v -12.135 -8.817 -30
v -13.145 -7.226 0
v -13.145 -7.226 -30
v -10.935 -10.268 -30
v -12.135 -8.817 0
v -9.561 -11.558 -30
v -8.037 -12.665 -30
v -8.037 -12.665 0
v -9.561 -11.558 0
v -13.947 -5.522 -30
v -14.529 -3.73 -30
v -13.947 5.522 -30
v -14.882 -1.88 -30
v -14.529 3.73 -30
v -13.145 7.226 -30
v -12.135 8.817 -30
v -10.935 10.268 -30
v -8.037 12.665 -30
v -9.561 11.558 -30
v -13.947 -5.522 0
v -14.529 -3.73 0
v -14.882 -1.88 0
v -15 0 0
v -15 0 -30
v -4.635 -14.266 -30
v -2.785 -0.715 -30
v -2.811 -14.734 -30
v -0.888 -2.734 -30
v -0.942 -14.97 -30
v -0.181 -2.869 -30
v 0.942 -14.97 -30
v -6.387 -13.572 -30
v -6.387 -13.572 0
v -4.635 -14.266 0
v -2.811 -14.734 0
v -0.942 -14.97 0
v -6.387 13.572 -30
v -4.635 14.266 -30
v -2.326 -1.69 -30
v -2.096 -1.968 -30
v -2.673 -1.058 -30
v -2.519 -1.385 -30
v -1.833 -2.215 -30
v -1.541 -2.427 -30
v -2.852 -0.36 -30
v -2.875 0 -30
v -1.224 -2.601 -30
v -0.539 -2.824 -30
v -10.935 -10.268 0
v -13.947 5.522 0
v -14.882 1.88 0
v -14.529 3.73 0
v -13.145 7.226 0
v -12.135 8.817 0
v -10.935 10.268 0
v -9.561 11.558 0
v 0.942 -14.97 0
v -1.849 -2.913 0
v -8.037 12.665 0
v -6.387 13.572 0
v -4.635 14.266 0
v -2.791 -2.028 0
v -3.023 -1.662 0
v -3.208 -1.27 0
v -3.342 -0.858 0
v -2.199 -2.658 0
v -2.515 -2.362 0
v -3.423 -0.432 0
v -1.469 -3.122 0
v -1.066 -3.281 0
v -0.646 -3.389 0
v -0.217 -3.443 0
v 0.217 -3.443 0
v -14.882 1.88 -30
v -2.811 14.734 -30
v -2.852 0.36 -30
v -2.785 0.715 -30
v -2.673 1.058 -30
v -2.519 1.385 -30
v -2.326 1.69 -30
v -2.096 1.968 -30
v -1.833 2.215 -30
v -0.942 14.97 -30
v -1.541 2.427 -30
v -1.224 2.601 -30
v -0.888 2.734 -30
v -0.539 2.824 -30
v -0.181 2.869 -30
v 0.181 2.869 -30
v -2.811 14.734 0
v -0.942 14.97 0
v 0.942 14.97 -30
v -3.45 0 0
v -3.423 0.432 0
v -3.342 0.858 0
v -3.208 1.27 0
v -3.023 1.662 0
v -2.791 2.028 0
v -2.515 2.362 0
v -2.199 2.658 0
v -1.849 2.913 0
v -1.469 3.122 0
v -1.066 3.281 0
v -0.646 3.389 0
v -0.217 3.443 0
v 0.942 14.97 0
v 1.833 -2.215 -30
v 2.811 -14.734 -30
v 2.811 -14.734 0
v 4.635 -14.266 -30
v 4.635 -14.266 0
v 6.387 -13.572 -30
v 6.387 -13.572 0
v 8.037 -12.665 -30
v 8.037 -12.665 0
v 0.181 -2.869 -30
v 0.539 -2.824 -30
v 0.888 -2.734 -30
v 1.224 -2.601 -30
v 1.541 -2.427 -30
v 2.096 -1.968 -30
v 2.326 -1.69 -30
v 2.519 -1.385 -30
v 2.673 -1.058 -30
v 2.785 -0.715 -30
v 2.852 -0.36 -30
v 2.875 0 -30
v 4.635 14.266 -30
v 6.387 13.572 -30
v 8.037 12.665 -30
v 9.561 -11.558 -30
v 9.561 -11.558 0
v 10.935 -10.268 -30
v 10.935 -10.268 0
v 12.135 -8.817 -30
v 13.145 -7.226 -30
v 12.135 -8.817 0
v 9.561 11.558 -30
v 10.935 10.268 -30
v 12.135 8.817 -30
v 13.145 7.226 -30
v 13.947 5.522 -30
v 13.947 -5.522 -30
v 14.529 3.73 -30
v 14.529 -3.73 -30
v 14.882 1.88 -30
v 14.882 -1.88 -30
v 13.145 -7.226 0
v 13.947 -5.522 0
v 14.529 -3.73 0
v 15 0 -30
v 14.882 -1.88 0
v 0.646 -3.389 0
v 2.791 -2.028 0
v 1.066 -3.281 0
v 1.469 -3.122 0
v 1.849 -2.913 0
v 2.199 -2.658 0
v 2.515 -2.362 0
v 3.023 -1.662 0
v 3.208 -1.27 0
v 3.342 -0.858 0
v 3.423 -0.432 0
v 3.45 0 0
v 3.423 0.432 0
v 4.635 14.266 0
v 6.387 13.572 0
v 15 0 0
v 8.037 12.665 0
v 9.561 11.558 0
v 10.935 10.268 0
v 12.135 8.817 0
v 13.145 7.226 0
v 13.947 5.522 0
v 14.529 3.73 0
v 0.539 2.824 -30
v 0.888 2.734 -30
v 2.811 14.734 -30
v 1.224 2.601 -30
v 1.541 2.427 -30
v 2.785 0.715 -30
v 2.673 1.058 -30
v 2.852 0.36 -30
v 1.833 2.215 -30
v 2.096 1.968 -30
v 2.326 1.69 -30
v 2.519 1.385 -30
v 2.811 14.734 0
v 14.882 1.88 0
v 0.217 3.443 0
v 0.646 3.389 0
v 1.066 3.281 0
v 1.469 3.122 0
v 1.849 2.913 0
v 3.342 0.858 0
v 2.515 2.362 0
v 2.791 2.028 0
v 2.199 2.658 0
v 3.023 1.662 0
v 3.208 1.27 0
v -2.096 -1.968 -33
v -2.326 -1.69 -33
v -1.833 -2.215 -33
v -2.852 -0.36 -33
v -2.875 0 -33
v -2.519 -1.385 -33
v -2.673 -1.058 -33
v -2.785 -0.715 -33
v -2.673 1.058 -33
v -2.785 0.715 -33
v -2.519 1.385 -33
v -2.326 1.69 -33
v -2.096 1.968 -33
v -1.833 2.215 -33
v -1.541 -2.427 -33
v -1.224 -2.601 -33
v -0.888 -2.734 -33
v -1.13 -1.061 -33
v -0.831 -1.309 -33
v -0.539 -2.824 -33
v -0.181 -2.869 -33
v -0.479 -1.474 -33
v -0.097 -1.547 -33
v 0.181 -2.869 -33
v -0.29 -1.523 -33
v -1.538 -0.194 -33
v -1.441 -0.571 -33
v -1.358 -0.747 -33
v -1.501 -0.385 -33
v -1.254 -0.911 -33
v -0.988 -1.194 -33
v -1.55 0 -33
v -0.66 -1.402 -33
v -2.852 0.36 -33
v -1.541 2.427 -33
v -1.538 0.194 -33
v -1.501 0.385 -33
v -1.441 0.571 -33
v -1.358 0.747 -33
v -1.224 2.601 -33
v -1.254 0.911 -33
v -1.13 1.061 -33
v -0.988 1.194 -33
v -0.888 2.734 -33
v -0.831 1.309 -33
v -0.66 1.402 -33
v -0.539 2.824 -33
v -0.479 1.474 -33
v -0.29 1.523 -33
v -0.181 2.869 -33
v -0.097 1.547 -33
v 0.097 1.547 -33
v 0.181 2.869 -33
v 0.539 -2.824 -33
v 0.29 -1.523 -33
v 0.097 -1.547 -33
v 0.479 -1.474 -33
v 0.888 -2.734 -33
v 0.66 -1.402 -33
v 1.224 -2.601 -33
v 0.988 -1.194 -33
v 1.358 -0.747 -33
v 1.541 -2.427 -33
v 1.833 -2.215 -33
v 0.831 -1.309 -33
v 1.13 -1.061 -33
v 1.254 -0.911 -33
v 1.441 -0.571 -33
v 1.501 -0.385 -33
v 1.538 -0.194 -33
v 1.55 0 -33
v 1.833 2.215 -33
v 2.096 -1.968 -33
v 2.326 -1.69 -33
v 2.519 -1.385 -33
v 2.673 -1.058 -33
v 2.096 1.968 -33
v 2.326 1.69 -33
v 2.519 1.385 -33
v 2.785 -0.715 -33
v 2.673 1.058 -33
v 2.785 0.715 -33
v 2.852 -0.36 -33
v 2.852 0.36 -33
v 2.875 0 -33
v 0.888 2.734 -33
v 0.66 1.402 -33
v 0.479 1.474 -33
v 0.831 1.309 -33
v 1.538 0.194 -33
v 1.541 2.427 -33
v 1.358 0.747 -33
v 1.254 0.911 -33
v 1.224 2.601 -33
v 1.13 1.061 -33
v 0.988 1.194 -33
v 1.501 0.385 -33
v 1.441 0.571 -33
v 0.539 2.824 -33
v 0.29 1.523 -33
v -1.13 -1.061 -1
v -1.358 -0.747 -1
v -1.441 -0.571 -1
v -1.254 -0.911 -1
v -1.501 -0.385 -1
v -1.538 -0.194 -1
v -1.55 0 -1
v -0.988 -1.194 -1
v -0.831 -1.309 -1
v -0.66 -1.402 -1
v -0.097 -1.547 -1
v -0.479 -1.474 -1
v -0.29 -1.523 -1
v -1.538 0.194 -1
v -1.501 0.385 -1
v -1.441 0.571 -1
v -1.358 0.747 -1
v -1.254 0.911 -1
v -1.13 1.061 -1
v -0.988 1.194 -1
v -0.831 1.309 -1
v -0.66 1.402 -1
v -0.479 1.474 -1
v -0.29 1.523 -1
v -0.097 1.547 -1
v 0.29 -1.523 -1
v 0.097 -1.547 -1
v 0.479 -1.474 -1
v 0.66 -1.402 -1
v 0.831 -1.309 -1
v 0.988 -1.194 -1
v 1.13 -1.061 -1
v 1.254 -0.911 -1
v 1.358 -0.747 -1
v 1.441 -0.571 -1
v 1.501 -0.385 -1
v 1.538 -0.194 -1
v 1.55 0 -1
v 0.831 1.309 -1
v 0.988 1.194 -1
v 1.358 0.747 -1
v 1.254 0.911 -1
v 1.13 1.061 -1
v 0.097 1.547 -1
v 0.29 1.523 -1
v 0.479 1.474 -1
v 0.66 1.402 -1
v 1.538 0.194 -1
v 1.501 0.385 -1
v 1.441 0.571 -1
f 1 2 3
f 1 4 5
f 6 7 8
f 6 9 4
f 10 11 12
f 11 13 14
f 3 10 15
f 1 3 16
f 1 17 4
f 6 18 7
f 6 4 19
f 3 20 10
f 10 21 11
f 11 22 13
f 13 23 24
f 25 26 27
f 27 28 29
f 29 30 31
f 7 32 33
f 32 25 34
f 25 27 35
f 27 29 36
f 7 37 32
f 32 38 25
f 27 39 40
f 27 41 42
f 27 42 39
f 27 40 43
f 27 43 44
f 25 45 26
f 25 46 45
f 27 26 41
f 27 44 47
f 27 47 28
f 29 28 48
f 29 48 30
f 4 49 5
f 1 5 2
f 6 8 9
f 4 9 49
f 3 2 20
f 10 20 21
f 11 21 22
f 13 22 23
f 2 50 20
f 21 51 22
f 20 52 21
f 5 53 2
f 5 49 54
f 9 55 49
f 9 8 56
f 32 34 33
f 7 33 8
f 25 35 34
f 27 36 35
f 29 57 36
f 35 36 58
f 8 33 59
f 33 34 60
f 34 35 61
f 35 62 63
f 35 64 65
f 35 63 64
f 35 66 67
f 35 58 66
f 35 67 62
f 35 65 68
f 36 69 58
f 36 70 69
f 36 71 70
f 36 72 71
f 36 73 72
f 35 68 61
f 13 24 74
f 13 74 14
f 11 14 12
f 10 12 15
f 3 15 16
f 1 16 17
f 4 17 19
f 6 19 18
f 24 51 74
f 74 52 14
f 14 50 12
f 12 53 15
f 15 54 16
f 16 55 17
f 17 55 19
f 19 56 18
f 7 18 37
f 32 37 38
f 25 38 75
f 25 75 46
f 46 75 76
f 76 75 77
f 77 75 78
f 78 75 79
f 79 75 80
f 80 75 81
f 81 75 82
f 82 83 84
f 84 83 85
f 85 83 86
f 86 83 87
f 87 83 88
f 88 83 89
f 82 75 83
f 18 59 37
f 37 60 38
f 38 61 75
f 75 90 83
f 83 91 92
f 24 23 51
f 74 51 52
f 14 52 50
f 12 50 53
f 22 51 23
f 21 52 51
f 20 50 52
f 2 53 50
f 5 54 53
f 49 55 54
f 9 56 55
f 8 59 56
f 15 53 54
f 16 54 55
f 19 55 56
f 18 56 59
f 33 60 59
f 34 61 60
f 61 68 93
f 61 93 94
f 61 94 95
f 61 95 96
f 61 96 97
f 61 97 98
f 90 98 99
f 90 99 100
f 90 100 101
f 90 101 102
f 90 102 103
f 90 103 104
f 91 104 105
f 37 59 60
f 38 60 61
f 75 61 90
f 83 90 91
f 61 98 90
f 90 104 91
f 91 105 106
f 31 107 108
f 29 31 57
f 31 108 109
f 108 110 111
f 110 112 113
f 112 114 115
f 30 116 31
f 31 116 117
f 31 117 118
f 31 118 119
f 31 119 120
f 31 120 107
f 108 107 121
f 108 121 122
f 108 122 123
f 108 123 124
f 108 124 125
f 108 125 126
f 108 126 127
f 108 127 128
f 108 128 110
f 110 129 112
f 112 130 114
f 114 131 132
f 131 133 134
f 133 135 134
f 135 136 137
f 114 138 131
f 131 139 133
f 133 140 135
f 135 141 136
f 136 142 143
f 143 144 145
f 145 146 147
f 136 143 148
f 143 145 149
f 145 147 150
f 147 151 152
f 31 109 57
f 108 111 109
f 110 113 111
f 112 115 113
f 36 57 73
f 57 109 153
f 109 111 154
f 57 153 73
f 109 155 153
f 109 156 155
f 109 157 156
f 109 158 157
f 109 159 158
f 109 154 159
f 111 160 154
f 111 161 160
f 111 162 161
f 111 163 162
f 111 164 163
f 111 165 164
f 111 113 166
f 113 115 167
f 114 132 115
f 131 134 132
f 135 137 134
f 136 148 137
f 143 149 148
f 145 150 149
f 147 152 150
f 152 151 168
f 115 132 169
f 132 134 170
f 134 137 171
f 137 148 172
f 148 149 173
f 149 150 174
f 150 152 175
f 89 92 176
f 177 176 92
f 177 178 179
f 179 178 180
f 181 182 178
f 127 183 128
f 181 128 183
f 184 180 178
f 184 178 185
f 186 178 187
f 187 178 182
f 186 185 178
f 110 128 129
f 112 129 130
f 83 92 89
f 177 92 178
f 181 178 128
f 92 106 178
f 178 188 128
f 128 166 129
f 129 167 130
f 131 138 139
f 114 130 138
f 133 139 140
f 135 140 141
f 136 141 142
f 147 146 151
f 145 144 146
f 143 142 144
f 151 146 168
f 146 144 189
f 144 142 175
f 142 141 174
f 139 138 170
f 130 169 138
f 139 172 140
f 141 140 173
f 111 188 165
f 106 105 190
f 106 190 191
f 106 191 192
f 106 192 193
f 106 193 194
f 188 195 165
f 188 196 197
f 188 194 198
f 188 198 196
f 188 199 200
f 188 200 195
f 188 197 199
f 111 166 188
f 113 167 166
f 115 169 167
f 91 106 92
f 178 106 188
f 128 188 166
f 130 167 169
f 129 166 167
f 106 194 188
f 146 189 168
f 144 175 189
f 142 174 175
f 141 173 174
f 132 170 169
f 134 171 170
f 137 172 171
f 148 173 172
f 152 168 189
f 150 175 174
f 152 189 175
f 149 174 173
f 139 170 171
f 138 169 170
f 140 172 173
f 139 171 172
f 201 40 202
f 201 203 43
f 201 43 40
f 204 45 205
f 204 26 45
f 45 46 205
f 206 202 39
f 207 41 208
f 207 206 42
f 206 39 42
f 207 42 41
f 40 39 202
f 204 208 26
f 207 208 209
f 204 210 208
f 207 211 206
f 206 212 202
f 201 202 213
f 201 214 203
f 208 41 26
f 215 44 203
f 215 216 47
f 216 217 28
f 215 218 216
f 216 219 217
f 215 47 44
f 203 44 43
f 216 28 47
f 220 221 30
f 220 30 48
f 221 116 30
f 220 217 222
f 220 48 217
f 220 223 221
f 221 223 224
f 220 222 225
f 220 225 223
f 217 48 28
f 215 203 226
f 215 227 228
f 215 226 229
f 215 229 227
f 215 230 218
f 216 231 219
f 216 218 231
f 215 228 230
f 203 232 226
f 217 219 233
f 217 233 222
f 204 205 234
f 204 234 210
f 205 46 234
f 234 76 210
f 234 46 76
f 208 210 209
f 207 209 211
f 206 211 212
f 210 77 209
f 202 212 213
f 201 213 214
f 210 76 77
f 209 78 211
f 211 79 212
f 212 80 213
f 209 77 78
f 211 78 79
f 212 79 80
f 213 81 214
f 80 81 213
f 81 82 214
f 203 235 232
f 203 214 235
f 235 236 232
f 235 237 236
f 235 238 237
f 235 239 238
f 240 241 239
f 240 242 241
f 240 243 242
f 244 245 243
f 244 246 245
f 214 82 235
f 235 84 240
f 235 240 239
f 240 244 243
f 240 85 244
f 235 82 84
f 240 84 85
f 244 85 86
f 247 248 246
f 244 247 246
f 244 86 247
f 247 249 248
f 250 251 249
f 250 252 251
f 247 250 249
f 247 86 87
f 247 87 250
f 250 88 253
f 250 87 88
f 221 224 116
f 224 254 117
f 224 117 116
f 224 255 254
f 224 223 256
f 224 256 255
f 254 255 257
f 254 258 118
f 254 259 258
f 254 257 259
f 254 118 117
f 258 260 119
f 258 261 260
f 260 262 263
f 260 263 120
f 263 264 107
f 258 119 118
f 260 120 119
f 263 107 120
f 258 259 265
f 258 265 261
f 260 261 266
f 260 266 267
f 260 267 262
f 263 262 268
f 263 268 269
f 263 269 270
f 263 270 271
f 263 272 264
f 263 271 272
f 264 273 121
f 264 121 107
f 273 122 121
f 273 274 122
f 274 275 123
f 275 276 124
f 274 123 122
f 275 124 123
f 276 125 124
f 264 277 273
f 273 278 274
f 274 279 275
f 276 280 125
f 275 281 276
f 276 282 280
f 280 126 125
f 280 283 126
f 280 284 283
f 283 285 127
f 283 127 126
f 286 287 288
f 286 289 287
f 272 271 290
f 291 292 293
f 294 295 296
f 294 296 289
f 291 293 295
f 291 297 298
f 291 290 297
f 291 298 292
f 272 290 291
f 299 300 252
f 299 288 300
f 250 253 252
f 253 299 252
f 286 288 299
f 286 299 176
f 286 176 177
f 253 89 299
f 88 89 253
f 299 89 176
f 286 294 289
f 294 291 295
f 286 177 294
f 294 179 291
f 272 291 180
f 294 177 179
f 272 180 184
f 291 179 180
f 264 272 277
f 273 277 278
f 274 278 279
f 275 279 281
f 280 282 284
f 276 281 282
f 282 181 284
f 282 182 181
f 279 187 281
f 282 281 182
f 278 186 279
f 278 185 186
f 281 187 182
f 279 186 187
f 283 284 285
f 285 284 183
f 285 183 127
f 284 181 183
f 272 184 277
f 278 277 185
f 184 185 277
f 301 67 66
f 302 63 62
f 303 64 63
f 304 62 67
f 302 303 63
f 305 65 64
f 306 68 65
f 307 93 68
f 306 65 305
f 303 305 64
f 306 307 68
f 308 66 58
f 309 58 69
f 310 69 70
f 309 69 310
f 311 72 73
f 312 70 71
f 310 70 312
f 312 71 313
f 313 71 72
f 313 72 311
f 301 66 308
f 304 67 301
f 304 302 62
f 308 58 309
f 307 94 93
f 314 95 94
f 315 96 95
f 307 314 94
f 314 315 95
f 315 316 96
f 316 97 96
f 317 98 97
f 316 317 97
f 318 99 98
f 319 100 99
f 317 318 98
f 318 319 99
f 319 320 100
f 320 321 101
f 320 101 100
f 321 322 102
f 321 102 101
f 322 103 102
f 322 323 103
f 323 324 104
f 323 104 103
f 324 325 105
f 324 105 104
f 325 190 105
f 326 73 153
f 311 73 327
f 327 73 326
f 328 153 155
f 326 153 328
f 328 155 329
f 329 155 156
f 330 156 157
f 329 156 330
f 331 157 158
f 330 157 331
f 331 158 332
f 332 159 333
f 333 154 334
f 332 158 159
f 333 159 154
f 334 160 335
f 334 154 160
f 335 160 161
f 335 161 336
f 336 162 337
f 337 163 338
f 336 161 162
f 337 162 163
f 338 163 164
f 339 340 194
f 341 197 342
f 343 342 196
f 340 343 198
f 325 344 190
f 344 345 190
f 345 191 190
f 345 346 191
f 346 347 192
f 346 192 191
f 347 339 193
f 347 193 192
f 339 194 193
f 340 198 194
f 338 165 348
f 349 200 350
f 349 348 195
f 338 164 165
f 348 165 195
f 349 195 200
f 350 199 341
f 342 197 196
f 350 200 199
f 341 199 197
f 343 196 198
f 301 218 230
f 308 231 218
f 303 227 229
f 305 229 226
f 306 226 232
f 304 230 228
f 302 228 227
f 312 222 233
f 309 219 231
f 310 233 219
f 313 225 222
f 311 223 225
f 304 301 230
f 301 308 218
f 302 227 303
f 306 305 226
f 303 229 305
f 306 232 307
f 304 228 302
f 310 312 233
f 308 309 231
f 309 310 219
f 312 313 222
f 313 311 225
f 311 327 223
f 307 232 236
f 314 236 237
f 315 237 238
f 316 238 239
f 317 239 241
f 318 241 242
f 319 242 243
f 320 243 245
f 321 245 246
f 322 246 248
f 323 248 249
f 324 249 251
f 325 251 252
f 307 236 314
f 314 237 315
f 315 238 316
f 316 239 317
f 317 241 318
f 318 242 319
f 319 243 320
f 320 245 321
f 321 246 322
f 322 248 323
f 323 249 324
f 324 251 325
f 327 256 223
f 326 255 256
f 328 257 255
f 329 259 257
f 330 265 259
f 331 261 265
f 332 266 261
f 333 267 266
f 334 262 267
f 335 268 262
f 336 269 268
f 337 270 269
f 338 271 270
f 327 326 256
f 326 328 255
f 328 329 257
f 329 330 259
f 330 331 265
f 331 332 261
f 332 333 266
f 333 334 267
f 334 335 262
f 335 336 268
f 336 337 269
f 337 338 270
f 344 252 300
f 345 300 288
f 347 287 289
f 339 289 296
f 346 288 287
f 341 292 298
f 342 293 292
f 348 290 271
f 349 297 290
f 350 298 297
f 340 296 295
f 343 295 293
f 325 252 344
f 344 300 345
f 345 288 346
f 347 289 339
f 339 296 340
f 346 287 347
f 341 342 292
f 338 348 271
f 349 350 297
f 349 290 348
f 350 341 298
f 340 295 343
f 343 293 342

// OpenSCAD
$fn = 50;

difference() {
	union() {
		translate(v = [0, 0, -30.0]) {
			cylinder(h = 30, r = 15.0);
		}
		#translate(v = [0, 0, -33.0]) {
			cylinder(h = 33, r = 2.875);
		}
	}
	union() {
		translate(v = [0, 0, 0]) {
			rotate(a = [0, 0, 0]) {
				difference() {
					union() {
						translate(v = [0, 0, -33.0]) {
							cylinder(h = 33, r = 1.25);
						}
						translate(v = [0, 0, -1.0]) {
							cylinder(h = 1.0, r1 = 1.55, r2 = 3.45);
						}
						translate(v = [0, 0, -33.0]) {
							cylinder(h = 33, r = 1.55);
						}
						translate(v = [0, 0, -33.0]) {
							cylinder(h = 33, r = 1.25);
						}
					}
					union();
				}
			}
		}
	}
}
